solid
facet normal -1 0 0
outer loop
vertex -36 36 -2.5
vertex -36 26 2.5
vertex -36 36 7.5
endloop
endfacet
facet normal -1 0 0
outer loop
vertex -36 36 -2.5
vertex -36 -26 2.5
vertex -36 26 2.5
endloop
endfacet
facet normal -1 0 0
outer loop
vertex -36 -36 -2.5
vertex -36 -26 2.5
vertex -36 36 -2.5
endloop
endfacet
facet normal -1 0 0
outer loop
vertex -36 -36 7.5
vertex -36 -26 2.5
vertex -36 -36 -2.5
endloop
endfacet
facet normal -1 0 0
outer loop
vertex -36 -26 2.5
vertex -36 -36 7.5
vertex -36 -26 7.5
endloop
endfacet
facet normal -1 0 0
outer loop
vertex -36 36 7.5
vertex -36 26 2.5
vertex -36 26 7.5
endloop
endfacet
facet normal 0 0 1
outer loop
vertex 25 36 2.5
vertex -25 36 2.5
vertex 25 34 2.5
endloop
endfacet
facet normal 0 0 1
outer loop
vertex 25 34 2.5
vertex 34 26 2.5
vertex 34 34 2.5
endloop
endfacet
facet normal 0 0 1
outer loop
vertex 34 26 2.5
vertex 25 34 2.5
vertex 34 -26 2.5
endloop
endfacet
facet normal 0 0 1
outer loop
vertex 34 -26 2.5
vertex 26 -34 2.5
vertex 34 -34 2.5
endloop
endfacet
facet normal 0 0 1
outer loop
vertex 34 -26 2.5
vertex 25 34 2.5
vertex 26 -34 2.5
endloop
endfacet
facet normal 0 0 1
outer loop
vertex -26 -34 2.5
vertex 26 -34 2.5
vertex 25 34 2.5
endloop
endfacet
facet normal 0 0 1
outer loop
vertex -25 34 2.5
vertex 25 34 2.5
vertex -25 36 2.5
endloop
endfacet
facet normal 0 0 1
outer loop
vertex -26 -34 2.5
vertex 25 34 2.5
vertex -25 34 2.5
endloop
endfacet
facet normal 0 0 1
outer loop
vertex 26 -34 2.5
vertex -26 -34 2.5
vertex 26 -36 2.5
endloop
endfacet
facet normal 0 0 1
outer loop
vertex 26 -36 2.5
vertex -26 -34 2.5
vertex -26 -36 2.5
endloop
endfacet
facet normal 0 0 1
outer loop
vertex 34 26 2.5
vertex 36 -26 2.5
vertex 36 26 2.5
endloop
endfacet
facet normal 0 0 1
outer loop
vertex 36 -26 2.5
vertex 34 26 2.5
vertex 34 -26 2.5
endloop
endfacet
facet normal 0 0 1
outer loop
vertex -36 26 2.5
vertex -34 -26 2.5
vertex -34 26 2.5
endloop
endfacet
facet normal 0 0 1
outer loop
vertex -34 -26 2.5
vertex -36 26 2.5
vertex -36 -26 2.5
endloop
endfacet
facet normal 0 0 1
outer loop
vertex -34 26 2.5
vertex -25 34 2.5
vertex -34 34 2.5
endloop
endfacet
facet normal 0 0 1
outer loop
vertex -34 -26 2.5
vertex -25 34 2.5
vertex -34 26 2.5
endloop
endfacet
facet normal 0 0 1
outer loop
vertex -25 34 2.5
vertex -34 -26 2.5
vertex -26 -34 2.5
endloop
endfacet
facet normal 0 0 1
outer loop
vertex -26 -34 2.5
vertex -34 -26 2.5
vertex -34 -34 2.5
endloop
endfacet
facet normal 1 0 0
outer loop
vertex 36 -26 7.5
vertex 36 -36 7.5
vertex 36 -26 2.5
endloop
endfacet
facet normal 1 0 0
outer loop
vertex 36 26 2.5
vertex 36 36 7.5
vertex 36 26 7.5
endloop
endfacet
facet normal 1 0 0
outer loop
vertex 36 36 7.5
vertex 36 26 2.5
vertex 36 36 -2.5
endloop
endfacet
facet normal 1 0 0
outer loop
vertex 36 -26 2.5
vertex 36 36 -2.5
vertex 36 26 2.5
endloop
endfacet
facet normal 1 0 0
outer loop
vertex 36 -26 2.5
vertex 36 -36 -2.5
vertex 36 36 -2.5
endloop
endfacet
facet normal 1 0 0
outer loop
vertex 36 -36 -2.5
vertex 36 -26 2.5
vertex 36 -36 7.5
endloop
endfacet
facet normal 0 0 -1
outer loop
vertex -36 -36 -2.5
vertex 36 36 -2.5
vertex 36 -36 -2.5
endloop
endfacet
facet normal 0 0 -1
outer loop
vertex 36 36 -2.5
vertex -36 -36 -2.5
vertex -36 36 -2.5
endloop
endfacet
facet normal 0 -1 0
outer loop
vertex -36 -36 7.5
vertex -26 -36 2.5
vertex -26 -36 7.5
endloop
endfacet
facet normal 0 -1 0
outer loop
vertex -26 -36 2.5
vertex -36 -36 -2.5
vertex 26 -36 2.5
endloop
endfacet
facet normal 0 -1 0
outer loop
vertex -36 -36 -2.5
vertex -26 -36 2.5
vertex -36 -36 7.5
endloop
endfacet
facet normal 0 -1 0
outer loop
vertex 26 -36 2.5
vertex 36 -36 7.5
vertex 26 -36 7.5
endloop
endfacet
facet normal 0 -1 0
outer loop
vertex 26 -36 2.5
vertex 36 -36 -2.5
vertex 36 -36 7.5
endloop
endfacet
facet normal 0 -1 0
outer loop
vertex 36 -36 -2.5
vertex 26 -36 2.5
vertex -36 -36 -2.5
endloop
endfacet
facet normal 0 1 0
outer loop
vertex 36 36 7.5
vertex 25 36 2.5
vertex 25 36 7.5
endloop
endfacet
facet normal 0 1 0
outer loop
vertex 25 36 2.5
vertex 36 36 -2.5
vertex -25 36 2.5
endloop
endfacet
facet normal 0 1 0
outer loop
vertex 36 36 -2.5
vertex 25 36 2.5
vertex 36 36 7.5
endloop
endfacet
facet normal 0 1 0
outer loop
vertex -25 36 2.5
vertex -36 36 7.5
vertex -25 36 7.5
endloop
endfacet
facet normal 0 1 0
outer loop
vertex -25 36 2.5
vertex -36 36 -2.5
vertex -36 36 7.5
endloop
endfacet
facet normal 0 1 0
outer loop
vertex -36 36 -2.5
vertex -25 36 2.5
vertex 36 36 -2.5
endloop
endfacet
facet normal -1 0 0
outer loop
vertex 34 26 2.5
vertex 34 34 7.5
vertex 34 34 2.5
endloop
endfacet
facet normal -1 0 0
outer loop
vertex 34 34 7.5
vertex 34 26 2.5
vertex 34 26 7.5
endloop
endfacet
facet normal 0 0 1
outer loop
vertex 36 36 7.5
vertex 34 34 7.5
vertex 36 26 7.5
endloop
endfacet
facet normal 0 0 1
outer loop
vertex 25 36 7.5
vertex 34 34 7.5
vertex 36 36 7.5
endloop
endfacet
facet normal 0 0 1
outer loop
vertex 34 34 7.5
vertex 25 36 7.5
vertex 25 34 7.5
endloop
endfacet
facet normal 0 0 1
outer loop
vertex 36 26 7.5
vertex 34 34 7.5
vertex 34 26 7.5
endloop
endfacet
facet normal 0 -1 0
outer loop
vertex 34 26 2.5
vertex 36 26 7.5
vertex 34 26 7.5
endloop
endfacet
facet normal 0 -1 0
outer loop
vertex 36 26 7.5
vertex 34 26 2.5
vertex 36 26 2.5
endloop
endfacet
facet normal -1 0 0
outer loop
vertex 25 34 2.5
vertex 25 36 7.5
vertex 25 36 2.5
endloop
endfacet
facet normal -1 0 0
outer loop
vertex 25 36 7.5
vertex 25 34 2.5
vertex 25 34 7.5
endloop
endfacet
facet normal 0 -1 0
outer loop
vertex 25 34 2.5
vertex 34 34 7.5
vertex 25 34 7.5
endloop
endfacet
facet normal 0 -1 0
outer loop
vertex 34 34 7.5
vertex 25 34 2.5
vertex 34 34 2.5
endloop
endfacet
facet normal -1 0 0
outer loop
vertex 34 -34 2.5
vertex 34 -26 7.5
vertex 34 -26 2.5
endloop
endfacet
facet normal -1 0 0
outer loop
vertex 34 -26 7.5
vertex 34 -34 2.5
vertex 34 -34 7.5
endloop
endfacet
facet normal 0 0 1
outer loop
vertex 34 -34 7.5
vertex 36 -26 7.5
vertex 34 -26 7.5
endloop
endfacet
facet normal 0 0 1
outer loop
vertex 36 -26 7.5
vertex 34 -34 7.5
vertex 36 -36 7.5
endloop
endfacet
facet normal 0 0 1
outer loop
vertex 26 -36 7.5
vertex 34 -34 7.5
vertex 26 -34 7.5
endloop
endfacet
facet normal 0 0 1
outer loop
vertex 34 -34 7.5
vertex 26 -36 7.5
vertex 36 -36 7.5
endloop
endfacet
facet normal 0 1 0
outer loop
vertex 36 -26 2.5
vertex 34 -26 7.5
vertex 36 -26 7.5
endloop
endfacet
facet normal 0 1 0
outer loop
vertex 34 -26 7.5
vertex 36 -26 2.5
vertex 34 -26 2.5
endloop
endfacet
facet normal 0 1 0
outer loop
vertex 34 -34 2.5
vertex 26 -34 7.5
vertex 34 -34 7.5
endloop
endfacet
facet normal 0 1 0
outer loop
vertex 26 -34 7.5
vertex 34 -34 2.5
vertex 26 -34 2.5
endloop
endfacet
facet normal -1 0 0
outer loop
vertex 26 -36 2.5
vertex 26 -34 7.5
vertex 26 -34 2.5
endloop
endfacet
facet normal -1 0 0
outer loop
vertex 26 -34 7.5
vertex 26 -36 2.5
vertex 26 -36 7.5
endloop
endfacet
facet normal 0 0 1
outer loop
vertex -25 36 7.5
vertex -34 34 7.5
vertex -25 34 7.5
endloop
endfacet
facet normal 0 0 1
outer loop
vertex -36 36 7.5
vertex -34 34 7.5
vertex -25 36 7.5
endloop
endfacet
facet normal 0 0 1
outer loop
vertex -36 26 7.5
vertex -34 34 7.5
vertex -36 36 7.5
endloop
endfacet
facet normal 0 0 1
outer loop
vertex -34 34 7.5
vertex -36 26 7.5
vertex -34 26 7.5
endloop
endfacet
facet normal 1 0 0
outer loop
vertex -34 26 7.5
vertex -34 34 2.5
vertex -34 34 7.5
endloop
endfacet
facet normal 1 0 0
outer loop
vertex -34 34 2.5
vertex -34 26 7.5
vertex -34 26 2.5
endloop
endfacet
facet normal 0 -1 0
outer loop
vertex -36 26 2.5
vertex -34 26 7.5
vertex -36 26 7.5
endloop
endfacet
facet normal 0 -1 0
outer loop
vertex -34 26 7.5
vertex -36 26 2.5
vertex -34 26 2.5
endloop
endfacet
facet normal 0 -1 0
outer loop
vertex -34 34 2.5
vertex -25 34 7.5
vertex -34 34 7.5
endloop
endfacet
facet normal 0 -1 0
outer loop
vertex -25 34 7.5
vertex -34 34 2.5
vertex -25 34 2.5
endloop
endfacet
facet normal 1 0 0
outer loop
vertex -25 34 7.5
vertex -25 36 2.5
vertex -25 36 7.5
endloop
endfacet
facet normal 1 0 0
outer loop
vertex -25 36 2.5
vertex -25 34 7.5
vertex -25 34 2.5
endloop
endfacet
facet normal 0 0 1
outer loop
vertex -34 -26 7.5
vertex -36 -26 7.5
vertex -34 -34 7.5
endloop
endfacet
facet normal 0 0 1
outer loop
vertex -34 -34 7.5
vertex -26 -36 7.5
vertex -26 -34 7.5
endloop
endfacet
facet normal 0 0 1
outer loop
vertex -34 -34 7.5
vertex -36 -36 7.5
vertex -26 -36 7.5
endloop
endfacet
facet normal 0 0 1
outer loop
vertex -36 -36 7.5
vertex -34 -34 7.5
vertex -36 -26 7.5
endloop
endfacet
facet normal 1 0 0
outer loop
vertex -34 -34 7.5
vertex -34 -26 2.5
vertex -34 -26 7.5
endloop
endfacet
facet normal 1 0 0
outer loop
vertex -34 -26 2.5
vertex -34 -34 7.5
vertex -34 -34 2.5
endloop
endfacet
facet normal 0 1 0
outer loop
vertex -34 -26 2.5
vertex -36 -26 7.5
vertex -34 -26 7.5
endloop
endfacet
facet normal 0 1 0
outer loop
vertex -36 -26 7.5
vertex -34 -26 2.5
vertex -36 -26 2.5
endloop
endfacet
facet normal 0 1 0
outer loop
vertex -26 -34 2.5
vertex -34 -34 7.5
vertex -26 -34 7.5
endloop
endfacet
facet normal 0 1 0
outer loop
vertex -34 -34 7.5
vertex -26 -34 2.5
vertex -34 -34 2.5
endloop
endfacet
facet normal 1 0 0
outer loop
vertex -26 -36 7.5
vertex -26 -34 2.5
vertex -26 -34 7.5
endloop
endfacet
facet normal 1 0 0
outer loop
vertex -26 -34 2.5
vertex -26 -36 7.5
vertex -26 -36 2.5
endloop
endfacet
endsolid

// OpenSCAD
cube([72, 72, 5], center=true);
translate([35, 31, 5]) cube([2, 10, 5], center=true);
translate([30, 35, 5]) rotate([0, 0, 90]) cube([2, 10, 5], center=true);

translate([35, -31, 5]) cube([2, 10, 5], center=true);
translate([31, -35, 5]) rotate([0, 0, 90]) cube([2, 10, 5], center=true);

translate([-35, 31, 5]) cube([2, 10, 5], center=true);
translate([-30, 35, 5]) rotate([0, 0, 90]) cube([2, 10, 5], center=true);

translate([-35, -31, 5]) cube([2, 10, 5], center=true);
translate([-31, -35, 5]) rotate([0, 0, 90]) cube([2, 10, 5], center=true);
